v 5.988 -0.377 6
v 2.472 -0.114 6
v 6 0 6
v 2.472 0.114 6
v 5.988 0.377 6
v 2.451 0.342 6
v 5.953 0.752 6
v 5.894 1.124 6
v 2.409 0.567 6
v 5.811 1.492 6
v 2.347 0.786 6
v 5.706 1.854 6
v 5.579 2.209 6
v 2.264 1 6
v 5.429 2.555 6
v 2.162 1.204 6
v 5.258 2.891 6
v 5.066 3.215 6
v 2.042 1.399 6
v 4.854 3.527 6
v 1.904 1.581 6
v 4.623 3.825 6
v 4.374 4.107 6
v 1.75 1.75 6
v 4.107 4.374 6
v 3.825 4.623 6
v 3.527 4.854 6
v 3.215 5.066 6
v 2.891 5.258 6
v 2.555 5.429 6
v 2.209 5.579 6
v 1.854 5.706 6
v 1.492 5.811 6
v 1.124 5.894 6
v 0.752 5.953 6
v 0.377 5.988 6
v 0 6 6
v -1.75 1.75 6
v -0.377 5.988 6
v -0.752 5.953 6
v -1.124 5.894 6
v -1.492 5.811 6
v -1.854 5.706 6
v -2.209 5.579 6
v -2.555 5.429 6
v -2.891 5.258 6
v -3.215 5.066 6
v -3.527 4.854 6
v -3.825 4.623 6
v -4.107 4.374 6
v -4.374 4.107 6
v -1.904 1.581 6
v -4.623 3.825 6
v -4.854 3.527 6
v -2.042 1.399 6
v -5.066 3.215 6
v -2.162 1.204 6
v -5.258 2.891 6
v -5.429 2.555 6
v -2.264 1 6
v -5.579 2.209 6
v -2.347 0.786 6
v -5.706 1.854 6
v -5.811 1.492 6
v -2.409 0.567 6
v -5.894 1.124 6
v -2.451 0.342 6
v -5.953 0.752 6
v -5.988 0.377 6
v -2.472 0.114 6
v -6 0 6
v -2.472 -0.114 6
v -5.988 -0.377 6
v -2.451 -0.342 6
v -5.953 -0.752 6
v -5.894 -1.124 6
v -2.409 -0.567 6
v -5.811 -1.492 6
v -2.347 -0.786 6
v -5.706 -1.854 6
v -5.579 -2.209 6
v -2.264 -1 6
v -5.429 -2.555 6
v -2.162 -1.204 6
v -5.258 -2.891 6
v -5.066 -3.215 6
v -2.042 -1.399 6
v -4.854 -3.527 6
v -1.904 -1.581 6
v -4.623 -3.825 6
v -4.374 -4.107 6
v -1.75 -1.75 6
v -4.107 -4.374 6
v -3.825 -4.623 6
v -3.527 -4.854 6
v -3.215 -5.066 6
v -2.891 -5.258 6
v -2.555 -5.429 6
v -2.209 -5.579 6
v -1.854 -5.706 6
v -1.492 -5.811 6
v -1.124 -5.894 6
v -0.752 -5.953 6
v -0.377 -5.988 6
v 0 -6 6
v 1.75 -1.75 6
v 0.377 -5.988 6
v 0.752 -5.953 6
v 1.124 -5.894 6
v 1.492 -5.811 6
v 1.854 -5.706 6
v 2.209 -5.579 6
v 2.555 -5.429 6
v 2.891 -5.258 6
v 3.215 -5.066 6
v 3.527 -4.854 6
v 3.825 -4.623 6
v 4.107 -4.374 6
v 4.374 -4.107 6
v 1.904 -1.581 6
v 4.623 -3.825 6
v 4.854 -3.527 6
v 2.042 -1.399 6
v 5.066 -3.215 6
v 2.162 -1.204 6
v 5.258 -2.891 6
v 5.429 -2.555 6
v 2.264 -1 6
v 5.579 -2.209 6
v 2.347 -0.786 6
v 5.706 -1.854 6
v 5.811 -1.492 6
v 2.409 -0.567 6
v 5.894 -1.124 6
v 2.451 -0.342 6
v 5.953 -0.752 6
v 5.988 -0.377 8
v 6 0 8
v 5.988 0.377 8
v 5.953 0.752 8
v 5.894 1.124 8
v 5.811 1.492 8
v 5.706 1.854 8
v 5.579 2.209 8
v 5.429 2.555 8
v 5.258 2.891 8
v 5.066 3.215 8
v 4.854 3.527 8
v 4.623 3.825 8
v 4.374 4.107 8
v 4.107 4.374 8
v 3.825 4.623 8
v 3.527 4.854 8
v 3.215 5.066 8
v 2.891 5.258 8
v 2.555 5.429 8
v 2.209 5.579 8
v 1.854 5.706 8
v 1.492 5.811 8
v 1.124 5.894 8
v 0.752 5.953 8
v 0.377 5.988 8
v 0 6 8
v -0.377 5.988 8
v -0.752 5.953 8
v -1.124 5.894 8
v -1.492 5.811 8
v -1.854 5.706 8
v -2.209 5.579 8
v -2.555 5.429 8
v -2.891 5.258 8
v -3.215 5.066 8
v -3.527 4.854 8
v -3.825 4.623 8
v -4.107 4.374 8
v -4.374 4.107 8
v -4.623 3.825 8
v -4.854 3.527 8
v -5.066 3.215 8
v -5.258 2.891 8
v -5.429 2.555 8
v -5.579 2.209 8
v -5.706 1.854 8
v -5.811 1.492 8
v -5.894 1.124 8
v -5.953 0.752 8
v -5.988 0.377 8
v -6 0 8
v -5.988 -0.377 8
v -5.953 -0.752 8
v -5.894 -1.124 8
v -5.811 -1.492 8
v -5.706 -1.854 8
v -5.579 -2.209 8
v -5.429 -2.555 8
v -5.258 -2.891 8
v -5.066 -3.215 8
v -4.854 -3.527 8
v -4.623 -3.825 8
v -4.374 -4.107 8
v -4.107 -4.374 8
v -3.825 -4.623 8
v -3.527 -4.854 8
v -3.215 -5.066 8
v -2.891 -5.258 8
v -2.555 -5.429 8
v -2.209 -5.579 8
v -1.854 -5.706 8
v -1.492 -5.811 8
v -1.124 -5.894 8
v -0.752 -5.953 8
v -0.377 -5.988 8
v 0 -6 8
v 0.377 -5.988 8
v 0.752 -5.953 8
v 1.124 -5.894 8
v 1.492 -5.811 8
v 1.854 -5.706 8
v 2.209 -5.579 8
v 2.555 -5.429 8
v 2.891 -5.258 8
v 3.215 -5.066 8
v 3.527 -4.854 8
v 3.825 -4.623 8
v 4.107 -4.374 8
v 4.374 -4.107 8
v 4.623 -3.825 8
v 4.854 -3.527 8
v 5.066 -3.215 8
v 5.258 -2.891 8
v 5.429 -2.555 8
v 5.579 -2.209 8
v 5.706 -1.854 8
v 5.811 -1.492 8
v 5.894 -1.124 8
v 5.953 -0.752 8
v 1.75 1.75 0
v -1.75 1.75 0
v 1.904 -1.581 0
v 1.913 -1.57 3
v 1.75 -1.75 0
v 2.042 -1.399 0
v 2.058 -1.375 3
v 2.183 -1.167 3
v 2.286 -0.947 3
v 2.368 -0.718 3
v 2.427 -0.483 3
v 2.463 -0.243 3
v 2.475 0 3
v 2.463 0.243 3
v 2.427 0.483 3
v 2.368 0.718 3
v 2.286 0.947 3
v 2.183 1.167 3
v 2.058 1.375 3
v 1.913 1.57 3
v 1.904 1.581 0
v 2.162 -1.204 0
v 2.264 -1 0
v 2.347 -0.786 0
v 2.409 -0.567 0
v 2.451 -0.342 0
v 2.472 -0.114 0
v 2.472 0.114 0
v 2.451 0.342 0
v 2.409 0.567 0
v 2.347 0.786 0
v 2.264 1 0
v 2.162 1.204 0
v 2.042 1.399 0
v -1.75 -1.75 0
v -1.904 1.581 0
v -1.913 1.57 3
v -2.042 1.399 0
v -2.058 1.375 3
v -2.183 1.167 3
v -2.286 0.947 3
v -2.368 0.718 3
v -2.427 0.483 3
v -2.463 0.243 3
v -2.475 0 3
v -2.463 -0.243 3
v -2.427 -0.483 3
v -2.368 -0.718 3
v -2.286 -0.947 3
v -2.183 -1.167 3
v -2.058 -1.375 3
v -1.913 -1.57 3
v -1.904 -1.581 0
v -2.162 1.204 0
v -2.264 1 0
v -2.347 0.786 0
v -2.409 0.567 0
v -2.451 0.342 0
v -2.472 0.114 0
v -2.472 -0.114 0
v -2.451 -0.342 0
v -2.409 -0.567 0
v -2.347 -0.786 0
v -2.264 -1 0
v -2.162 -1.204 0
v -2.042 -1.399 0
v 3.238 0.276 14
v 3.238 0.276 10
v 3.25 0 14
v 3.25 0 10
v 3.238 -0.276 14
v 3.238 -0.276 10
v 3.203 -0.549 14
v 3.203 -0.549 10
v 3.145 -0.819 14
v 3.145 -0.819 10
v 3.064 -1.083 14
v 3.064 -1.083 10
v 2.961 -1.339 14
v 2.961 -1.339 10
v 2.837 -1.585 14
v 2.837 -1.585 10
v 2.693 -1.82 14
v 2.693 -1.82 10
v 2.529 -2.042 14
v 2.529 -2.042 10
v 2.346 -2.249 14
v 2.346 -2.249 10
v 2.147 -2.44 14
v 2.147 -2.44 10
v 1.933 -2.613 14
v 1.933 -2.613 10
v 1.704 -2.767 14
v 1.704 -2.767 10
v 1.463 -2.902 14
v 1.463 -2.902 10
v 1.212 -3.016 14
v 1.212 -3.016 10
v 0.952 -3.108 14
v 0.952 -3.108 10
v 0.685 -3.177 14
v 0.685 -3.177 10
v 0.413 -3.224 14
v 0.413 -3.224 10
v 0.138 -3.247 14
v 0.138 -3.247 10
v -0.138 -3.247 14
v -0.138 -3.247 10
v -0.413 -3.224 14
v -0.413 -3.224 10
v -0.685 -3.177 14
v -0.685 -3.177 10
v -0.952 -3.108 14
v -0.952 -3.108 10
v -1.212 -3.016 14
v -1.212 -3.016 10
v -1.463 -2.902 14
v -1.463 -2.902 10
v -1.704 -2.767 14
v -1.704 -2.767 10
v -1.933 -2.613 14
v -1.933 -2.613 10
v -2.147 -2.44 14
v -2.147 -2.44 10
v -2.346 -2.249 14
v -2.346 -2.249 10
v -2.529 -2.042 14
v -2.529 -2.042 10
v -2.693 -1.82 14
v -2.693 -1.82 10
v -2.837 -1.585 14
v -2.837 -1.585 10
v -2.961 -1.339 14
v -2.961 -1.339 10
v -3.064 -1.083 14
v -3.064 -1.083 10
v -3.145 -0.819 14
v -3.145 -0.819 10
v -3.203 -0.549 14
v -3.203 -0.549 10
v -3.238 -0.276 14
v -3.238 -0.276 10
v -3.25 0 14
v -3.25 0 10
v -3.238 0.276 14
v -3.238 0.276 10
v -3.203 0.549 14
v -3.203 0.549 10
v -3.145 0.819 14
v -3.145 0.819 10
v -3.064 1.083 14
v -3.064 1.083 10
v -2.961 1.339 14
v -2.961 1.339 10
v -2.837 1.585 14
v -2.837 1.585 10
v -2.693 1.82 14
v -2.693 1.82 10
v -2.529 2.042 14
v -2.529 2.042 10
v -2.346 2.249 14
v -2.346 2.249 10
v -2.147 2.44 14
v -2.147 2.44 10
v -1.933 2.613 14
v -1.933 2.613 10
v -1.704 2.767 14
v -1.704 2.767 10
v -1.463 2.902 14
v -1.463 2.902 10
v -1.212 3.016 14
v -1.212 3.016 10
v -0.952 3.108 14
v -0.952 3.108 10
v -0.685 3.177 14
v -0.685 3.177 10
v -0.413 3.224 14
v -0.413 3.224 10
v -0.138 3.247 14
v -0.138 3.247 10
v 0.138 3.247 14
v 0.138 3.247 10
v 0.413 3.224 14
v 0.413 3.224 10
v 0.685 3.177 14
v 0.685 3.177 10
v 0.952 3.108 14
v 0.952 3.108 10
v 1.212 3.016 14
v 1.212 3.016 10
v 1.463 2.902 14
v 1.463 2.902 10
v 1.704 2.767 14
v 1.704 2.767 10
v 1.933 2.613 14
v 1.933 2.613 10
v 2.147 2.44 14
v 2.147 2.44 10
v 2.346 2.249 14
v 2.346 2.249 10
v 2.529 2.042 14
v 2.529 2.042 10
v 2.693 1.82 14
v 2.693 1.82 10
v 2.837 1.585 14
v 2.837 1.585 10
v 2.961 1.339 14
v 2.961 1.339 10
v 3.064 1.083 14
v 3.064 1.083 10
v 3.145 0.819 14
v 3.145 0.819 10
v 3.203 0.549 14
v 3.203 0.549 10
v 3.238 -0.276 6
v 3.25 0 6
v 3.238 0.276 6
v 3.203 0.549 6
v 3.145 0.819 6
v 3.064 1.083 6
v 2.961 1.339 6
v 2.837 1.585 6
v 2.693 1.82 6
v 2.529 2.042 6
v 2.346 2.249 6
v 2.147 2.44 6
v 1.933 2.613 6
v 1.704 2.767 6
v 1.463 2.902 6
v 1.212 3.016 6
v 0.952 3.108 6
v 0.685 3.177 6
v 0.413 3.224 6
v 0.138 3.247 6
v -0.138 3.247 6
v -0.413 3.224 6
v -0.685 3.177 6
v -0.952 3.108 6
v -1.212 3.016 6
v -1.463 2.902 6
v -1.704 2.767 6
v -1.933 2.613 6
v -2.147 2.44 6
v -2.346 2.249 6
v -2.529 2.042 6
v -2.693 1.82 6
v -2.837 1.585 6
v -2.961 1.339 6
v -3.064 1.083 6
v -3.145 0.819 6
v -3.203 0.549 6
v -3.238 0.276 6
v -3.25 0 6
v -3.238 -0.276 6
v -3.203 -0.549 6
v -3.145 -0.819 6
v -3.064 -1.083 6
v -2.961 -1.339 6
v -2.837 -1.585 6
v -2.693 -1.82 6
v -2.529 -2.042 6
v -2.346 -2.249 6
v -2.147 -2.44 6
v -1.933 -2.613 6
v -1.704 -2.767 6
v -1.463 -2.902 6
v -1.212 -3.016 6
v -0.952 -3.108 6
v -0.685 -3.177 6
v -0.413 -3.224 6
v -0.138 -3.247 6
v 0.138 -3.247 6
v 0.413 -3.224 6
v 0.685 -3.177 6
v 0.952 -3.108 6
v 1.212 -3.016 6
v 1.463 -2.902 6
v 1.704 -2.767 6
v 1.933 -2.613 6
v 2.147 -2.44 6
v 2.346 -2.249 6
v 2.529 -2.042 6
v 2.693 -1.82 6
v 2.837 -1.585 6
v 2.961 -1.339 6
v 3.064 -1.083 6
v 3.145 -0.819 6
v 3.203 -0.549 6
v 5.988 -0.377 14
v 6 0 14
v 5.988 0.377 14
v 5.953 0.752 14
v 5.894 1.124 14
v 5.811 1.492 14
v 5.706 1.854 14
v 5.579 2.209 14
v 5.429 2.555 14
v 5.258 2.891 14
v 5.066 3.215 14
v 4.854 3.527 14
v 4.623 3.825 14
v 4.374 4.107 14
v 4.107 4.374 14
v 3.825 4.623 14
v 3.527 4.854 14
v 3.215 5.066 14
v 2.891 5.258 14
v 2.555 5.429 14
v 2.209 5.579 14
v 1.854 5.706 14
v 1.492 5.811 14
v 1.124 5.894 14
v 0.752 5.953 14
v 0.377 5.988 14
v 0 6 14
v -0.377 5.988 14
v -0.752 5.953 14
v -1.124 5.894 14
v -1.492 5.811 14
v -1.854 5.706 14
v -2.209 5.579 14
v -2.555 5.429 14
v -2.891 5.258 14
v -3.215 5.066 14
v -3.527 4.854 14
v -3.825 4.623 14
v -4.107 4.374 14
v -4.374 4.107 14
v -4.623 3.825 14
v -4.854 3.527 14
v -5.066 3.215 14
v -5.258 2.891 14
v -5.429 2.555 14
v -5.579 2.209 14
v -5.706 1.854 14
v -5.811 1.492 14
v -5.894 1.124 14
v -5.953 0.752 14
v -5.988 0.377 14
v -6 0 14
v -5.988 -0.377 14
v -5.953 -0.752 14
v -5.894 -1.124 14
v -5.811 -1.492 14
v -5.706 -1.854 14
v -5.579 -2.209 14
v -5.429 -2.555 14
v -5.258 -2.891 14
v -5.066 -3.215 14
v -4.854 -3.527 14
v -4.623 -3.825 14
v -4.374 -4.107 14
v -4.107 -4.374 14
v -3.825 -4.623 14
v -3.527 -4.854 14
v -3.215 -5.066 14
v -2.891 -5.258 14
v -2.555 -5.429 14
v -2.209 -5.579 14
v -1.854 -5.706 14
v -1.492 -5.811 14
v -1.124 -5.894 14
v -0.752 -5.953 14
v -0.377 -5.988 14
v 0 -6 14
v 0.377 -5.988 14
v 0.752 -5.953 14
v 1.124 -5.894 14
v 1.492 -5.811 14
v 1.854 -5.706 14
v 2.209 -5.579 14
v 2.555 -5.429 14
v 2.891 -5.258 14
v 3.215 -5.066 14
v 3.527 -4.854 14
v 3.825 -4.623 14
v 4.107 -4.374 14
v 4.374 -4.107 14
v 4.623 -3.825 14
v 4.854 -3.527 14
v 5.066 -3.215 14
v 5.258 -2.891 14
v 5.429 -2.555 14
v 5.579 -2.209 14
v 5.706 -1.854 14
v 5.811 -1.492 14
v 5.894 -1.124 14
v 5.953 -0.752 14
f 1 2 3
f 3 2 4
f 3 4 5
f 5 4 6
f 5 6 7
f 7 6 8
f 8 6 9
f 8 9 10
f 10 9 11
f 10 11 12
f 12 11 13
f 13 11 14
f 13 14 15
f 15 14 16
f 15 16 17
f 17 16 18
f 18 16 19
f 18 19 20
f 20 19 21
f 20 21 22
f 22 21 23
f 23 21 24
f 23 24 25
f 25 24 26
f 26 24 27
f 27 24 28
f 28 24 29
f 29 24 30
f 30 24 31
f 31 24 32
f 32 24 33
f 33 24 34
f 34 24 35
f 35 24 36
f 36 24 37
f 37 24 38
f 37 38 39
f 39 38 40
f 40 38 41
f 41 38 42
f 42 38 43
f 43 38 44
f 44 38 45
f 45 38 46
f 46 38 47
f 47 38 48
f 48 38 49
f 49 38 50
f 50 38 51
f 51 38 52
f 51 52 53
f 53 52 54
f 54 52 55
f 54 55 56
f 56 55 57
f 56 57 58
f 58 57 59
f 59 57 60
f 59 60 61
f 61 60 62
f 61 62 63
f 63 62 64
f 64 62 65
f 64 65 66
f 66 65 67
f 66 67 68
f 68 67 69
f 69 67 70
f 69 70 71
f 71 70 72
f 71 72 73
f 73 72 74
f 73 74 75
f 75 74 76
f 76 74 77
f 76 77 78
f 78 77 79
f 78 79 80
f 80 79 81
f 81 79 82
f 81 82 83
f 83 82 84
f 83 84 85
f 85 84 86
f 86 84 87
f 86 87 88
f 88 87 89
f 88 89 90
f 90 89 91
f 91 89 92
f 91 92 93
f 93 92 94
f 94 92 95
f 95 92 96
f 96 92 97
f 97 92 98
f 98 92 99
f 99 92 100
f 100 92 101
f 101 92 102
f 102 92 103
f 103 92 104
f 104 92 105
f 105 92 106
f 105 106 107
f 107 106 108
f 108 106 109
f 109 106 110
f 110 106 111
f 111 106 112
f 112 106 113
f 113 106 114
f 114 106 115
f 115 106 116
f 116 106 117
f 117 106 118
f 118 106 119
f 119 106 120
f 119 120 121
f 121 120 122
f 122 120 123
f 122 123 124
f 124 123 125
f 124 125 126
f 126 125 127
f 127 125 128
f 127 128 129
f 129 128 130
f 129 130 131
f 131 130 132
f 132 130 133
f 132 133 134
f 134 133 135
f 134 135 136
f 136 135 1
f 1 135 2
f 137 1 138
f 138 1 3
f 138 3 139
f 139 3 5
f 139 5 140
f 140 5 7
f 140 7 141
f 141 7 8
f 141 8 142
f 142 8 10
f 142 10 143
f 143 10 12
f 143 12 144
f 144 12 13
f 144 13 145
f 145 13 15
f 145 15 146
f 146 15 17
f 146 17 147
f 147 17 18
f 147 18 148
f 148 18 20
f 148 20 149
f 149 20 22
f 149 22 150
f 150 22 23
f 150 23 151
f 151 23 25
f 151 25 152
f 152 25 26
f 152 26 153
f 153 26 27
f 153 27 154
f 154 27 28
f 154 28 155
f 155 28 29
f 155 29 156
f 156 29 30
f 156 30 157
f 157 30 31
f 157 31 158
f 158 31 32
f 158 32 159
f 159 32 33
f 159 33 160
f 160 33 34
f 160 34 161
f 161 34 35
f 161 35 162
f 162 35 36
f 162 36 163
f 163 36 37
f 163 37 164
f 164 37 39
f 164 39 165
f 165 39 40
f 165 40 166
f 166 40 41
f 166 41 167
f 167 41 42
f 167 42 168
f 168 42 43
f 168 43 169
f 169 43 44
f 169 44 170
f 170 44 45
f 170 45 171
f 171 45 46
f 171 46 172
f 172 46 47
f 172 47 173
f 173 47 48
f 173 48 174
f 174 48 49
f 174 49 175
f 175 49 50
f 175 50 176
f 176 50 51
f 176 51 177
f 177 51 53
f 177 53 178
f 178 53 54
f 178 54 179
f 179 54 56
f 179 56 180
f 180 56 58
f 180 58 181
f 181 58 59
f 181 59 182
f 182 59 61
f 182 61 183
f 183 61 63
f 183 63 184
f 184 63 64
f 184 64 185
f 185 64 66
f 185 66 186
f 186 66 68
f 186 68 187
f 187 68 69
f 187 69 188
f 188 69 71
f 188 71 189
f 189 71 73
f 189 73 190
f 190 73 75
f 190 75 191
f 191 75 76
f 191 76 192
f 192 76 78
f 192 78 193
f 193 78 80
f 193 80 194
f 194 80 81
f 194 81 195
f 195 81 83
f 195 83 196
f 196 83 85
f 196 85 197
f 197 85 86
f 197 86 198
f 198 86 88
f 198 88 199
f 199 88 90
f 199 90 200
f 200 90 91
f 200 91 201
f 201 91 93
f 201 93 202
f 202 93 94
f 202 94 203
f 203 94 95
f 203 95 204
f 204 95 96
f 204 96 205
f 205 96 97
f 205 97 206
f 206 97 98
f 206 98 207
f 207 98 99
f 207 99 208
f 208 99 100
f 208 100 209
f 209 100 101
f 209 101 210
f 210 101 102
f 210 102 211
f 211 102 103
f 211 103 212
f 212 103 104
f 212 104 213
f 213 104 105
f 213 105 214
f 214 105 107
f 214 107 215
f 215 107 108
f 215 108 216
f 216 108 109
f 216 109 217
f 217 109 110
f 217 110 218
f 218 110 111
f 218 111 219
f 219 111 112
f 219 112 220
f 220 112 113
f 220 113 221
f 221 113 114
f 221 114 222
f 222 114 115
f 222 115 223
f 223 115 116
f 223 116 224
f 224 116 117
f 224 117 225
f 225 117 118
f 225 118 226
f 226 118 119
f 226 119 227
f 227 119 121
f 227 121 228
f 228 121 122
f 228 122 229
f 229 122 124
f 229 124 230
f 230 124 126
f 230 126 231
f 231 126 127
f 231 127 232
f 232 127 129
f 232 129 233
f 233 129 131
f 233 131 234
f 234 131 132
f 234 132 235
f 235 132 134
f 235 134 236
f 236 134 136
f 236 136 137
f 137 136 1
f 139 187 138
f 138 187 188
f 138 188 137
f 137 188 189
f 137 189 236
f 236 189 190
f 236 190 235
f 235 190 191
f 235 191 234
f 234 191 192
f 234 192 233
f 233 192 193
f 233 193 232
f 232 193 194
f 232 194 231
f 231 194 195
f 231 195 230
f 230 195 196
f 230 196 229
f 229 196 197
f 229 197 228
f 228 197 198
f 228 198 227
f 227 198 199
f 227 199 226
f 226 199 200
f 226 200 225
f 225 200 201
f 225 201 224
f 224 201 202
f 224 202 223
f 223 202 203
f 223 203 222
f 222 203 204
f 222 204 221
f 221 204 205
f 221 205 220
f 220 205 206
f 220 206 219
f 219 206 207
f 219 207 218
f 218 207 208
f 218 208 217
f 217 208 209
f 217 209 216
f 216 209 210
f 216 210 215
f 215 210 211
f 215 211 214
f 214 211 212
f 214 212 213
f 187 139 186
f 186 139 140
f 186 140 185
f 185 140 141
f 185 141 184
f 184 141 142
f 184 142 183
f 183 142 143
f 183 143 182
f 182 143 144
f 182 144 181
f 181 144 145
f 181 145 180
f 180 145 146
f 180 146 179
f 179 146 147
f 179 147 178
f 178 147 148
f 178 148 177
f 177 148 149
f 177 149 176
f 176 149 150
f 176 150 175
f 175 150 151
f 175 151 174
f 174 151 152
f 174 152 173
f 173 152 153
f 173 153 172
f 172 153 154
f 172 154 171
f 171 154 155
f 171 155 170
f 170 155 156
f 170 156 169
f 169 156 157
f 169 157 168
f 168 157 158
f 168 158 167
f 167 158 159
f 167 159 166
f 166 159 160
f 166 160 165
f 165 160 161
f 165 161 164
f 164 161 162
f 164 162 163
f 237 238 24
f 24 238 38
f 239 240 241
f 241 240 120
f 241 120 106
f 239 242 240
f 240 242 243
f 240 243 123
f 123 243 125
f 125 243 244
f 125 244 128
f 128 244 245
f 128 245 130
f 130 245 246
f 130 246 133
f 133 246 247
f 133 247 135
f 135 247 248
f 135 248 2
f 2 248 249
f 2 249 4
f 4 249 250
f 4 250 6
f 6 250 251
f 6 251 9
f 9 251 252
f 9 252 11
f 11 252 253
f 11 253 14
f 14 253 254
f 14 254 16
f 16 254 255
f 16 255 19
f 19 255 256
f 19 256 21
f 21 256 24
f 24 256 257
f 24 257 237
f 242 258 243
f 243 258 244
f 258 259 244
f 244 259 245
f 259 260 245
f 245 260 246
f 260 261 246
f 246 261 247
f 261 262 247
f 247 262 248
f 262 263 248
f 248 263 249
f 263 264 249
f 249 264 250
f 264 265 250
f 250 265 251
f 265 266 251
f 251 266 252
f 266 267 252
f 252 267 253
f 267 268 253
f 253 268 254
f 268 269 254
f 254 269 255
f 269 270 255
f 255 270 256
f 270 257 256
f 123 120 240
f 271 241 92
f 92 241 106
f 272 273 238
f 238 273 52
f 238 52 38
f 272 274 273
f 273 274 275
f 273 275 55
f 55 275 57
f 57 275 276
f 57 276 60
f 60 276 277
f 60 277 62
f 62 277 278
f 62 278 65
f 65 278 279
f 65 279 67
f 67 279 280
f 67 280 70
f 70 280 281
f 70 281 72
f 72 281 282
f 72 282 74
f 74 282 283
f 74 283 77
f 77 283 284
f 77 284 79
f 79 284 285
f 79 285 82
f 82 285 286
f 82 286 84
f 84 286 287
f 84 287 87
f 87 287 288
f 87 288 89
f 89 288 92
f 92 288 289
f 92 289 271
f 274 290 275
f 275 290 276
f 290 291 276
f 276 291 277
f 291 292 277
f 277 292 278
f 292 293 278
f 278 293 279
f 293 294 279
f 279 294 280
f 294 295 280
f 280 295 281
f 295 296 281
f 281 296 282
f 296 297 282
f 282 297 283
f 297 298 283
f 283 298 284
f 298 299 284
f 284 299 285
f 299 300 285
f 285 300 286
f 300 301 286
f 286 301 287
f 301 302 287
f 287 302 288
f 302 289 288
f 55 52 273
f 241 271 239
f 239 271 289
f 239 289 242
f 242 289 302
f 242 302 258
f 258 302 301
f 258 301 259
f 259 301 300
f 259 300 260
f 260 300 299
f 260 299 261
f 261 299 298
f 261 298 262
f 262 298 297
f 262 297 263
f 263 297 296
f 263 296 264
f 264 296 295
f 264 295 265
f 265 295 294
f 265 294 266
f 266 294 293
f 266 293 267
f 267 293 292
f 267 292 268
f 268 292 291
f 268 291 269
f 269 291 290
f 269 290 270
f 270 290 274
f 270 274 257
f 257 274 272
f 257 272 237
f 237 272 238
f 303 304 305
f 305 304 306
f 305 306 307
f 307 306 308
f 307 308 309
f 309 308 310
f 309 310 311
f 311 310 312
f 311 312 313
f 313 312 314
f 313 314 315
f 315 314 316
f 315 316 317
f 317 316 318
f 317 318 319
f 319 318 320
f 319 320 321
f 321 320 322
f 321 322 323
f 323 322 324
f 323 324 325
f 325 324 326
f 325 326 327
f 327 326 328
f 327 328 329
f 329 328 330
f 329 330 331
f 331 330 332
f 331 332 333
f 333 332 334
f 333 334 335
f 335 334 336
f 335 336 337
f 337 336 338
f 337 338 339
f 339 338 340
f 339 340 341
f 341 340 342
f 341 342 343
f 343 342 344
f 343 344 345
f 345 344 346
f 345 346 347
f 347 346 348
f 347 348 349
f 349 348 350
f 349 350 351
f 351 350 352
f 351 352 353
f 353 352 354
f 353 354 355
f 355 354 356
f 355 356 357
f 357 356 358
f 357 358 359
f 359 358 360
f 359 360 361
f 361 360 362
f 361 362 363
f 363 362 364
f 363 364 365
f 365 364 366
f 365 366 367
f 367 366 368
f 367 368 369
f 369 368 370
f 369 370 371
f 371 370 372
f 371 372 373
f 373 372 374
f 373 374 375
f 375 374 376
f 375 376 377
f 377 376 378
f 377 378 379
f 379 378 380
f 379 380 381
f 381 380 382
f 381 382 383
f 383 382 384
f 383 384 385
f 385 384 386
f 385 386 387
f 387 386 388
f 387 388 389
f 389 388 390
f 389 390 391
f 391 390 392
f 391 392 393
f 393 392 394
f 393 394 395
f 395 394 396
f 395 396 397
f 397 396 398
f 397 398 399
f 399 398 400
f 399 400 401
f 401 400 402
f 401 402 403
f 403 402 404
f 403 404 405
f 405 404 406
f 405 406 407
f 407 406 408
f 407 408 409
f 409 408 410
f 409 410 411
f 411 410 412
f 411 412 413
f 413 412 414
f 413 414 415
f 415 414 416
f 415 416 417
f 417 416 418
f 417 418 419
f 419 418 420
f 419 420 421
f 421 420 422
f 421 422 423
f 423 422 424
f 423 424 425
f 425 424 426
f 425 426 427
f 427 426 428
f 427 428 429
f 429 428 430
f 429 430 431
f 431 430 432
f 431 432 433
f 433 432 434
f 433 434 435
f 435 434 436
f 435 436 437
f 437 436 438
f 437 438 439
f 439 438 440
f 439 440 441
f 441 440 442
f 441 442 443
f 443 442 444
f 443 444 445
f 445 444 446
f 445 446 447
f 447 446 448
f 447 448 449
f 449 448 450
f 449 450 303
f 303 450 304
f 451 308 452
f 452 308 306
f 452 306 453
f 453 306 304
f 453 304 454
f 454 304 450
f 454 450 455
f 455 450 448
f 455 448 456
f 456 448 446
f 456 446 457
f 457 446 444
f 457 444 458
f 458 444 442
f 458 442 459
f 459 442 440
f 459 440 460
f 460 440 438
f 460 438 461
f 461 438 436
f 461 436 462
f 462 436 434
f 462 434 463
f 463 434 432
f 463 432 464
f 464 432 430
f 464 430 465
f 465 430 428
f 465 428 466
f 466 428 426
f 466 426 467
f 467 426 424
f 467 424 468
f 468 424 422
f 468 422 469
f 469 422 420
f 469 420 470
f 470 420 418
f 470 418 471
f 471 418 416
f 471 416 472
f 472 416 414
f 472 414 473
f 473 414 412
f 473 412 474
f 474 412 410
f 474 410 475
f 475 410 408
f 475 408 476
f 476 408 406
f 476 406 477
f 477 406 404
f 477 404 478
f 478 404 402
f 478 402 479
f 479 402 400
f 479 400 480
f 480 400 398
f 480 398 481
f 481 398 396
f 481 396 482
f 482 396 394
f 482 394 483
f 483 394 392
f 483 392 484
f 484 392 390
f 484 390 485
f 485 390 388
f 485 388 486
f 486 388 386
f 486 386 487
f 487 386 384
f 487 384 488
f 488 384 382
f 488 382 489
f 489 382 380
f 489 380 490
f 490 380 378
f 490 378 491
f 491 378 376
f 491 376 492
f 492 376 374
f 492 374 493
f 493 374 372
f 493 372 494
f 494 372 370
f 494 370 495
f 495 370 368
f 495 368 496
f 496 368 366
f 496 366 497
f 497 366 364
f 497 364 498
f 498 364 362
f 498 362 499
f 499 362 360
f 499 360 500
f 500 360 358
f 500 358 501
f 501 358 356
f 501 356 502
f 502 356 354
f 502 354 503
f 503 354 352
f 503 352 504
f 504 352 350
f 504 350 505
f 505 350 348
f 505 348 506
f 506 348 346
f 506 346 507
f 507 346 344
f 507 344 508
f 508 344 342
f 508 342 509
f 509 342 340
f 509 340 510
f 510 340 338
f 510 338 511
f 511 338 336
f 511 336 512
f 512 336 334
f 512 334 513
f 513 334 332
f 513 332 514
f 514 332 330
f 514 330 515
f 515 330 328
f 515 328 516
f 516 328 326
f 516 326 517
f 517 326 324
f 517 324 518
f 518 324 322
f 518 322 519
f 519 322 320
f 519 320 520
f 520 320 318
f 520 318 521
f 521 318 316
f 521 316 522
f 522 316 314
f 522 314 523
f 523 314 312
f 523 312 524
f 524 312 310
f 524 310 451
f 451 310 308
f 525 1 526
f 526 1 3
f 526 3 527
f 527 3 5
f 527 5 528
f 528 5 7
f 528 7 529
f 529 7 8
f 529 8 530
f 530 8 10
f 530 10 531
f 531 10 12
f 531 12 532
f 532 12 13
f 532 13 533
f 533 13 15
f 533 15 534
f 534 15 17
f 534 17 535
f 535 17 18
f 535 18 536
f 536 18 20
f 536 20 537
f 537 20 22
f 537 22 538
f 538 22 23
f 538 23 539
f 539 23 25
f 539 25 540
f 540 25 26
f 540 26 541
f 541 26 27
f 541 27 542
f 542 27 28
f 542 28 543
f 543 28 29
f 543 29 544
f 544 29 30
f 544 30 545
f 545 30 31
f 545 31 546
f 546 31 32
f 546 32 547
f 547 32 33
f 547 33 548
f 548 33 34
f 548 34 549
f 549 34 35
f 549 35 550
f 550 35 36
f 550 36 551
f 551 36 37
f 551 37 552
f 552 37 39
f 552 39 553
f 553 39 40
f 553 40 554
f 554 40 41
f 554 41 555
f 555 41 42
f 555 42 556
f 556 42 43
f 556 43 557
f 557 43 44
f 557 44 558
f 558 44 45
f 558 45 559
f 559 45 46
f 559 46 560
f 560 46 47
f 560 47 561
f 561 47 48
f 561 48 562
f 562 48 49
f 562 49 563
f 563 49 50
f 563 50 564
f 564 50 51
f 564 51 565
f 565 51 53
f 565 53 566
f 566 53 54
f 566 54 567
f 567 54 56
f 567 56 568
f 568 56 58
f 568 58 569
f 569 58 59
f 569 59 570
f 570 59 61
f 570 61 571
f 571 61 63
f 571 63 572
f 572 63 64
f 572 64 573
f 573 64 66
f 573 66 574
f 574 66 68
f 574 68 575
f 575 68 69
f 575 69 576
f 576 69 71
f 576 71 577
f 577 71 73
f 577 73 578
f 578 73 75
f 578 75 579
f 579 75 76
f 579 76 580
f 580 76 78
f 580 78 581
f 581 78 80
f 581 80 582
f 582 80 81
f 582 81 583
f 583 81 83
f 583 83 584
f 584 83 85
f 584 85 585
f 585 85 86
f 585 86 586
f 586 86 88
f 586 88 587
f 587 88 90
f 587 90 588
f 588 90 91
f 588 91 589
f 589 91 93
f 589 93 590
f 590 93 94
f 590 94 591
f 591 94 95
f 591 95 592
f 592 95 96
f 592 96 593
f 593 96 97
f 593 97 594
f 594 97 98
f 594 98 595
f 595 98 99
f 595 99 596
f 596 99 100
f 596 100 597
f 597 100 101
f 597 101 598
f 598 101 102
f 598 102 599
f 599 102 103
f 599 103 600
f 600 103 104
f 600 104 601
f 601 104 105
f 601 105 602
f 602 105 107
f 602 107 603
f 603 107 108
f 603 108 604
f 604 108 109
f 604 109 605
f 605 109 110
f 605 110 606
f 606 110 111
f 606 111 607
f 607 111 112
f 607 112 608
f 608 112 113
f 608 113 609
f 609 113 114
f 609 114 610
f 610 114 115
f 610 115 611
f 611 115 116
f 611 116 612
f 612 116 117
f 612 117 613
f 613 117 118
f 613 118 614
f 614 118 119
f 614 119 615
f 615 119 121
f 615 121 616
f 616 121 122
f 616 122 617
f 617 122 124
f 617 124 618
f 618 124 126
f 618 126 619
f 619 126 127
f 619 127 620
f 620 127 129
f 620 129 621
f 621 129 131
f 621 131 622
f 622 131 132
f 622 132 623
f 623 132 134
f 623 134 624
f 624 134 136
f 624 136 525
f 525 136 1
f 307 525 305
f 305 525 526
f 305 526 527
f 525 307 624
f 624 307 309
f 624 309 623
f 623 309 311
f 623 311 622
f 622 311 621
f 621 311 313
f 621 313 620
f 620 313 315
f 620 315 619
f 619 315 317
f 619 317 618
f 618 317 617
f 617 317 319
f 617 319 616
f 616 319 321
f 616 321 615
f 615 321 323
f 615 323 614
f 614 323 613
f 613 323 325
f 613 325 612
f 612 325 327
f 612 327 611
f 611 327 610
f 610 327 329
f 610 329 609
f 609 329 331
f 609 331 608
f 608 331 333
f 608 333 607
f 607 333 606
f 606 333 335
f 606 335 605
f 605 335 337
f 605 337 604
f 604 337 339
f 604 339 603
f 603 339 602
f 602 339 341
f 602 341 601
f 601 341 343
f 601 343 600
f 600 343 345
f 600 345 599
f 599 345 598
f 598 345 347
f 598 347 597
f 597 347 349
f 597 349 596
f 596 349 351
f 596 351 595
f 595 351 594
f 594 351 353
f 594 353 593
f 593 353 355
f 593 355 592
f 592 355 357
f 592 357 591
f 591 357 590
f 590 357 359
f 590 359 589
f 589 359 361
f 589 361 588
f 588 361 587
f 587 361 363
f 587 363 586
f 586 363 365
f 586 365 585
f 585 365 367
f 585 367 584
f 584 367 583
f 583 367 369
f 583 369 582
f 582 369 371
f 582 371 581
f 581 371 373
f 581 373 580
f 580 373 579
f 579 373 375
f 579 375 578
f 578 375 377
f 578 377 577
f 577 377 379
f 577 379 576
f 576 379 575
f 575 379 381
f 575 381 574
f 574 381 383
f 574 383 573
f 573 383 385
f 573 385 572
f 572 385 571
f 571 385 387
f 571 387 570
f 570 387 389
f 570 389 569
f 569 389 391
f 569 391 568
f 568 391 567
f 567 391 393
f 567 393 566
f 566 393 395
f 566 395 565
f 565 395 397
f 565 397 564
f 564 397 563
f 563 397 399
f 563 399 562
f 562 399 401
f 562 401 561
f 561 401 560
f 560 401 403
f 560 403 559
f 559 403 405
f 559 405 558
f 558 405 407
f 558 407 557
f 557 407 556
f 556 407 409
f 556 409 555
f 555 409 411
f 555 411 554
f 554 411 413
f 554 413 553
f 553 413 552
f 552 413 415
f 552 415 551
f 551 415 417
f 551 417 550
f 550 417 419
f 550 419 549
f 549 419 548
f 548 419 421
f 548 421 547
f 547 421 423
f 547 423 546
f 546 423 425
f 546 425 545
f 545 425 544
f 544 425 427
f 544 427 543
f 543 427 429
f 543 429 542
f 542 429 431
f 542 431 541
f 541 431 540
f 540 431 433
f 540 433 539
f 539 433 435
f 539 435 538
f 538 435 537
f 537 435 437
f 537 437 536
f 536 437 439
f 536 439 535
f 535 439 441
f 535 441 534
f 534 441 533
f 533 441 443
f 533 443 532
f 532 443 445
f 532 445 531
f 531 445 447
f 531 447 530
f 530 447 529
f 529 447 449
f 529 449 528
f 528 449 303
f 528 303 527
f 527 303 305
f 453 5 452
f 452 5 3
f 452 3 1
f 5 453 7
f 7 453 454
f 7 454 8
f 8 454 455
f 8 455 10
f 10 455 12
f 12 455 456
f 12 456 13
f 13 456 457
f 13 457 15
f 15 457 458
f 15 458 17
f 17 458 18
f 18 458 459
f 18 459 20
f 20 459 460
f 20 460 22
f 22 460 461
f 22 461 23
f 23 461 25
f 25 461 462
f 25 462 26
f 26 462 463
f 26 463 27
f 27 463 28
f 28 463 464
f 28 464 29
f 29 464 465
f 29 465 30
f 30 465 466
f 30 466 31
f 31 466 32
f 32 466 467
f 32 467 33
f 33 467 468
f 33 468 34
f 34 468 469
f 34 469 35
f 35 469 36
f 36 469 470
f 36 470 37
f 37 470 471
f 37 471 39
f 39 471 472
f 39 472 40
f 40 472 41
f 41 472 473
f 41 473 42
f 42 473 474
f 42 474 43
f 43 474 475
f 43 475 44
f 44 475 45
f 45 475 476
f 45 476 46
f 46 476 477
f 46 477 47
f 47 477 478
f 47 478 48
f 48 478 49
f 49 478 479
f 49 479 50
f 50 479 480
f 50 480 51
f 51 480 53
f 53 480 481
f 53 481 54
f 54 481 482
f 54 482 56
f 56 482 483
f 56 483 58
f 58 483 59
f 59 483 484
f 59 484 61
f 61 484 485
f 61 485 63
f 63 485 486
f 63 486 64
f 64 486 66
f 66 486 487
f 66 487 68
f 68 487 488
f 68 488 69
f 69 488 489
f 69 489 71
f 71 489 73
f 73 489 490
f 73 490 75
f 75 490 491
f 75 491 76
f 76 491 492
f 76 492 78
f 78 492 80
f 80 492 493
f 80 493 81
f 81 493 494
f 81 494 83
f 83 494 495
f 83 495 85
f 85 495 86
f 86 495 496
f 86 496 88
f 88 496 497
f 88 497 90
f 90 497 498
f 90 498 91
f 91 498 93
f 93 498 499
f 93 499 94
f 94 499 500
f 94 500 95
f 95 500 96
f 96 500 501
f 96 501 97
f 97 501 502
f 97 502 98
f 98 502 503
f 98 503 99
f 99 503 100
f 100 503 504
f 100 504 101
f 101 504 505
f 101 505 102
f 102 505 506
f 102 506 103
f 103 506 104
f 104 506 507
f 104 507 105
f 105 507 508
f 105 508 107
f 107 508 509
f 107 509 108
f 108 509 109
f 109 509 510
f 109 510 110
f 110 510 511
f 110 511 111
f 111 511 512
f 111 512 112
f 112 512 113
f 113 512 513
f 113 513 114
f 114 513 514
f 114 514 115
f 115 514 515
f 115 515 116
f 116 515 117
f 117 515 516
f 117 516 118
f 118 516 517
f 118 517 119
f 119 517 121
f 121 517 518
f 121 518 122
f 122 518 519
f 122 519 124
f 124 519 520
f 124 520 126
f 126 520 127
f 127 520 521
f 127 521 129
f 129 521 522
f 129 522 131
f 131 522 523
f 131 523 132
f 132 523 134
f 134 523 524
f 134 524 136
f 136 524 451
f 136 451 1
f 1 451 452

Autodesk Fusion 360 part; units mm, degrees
sketch "Sketch1" plane through (0, 0, 0) normal (0, 0, 1) x (1, 0, 0)
  line L0 (1.75, -1.75) -> (-1.75, -1.75)
  line L1 (-1.75, -1.75) -> (-1.75, 1.75)
  line L2 (-1.75, 1.75) -> (1.75, 1.75)
  line L3 (1.75, 1.75) -> (1.75, -1.75)
  line L4 (1.75, -1.75) -> (-1.75, 1.75) construction
  line L5 (-1.75, -1.75) -> (1.75, 1.75) construction
  arc A0 (-1.75, 1.75) -> (-1.75, -1.75) centre (0, 0) ccw
  arc A1 (1.75, -1.75) -> (1.75, 1.75) centre (0, 0) ccw
  dimension "d1" = 3.5
  dimension "d2" = 3.5
extrude "Extrude1" add sketch "Sketch1" along normal blind 6 makes body 1
sketch "Sketch2" plane through (0, 0, 6) normal (0, 0, 1) x (-1, 0, 0)
  arc A0 (1.75, -1.75) -> (1.75, 1.75) centre (0, 0) ccw
  line L0 (1.75, 1.75) -> (-1.75, 1.75)
  arc A1 (-1.75, 1.75) -> (-1.75, -1.75) centre (0, 0) ccw
  line L1 (-1.75, -1.75) -> (1.75, -1.75)
  circle A2 centre (0, 0) radius 6
  circle A3 centre (0, 0) radius 3.25
  dimension "d5" = 12
  dimension "d6" = 6.5
extrude "Extrude2" add sketch "Sketch2" along normal blind 2 contours A0 L0 A1 L1 | A2 | A3 bodies 1
extrude "Extrude3" add sketch "Sketch2" along normal blind 8 separate body contours A2 makes body 2
